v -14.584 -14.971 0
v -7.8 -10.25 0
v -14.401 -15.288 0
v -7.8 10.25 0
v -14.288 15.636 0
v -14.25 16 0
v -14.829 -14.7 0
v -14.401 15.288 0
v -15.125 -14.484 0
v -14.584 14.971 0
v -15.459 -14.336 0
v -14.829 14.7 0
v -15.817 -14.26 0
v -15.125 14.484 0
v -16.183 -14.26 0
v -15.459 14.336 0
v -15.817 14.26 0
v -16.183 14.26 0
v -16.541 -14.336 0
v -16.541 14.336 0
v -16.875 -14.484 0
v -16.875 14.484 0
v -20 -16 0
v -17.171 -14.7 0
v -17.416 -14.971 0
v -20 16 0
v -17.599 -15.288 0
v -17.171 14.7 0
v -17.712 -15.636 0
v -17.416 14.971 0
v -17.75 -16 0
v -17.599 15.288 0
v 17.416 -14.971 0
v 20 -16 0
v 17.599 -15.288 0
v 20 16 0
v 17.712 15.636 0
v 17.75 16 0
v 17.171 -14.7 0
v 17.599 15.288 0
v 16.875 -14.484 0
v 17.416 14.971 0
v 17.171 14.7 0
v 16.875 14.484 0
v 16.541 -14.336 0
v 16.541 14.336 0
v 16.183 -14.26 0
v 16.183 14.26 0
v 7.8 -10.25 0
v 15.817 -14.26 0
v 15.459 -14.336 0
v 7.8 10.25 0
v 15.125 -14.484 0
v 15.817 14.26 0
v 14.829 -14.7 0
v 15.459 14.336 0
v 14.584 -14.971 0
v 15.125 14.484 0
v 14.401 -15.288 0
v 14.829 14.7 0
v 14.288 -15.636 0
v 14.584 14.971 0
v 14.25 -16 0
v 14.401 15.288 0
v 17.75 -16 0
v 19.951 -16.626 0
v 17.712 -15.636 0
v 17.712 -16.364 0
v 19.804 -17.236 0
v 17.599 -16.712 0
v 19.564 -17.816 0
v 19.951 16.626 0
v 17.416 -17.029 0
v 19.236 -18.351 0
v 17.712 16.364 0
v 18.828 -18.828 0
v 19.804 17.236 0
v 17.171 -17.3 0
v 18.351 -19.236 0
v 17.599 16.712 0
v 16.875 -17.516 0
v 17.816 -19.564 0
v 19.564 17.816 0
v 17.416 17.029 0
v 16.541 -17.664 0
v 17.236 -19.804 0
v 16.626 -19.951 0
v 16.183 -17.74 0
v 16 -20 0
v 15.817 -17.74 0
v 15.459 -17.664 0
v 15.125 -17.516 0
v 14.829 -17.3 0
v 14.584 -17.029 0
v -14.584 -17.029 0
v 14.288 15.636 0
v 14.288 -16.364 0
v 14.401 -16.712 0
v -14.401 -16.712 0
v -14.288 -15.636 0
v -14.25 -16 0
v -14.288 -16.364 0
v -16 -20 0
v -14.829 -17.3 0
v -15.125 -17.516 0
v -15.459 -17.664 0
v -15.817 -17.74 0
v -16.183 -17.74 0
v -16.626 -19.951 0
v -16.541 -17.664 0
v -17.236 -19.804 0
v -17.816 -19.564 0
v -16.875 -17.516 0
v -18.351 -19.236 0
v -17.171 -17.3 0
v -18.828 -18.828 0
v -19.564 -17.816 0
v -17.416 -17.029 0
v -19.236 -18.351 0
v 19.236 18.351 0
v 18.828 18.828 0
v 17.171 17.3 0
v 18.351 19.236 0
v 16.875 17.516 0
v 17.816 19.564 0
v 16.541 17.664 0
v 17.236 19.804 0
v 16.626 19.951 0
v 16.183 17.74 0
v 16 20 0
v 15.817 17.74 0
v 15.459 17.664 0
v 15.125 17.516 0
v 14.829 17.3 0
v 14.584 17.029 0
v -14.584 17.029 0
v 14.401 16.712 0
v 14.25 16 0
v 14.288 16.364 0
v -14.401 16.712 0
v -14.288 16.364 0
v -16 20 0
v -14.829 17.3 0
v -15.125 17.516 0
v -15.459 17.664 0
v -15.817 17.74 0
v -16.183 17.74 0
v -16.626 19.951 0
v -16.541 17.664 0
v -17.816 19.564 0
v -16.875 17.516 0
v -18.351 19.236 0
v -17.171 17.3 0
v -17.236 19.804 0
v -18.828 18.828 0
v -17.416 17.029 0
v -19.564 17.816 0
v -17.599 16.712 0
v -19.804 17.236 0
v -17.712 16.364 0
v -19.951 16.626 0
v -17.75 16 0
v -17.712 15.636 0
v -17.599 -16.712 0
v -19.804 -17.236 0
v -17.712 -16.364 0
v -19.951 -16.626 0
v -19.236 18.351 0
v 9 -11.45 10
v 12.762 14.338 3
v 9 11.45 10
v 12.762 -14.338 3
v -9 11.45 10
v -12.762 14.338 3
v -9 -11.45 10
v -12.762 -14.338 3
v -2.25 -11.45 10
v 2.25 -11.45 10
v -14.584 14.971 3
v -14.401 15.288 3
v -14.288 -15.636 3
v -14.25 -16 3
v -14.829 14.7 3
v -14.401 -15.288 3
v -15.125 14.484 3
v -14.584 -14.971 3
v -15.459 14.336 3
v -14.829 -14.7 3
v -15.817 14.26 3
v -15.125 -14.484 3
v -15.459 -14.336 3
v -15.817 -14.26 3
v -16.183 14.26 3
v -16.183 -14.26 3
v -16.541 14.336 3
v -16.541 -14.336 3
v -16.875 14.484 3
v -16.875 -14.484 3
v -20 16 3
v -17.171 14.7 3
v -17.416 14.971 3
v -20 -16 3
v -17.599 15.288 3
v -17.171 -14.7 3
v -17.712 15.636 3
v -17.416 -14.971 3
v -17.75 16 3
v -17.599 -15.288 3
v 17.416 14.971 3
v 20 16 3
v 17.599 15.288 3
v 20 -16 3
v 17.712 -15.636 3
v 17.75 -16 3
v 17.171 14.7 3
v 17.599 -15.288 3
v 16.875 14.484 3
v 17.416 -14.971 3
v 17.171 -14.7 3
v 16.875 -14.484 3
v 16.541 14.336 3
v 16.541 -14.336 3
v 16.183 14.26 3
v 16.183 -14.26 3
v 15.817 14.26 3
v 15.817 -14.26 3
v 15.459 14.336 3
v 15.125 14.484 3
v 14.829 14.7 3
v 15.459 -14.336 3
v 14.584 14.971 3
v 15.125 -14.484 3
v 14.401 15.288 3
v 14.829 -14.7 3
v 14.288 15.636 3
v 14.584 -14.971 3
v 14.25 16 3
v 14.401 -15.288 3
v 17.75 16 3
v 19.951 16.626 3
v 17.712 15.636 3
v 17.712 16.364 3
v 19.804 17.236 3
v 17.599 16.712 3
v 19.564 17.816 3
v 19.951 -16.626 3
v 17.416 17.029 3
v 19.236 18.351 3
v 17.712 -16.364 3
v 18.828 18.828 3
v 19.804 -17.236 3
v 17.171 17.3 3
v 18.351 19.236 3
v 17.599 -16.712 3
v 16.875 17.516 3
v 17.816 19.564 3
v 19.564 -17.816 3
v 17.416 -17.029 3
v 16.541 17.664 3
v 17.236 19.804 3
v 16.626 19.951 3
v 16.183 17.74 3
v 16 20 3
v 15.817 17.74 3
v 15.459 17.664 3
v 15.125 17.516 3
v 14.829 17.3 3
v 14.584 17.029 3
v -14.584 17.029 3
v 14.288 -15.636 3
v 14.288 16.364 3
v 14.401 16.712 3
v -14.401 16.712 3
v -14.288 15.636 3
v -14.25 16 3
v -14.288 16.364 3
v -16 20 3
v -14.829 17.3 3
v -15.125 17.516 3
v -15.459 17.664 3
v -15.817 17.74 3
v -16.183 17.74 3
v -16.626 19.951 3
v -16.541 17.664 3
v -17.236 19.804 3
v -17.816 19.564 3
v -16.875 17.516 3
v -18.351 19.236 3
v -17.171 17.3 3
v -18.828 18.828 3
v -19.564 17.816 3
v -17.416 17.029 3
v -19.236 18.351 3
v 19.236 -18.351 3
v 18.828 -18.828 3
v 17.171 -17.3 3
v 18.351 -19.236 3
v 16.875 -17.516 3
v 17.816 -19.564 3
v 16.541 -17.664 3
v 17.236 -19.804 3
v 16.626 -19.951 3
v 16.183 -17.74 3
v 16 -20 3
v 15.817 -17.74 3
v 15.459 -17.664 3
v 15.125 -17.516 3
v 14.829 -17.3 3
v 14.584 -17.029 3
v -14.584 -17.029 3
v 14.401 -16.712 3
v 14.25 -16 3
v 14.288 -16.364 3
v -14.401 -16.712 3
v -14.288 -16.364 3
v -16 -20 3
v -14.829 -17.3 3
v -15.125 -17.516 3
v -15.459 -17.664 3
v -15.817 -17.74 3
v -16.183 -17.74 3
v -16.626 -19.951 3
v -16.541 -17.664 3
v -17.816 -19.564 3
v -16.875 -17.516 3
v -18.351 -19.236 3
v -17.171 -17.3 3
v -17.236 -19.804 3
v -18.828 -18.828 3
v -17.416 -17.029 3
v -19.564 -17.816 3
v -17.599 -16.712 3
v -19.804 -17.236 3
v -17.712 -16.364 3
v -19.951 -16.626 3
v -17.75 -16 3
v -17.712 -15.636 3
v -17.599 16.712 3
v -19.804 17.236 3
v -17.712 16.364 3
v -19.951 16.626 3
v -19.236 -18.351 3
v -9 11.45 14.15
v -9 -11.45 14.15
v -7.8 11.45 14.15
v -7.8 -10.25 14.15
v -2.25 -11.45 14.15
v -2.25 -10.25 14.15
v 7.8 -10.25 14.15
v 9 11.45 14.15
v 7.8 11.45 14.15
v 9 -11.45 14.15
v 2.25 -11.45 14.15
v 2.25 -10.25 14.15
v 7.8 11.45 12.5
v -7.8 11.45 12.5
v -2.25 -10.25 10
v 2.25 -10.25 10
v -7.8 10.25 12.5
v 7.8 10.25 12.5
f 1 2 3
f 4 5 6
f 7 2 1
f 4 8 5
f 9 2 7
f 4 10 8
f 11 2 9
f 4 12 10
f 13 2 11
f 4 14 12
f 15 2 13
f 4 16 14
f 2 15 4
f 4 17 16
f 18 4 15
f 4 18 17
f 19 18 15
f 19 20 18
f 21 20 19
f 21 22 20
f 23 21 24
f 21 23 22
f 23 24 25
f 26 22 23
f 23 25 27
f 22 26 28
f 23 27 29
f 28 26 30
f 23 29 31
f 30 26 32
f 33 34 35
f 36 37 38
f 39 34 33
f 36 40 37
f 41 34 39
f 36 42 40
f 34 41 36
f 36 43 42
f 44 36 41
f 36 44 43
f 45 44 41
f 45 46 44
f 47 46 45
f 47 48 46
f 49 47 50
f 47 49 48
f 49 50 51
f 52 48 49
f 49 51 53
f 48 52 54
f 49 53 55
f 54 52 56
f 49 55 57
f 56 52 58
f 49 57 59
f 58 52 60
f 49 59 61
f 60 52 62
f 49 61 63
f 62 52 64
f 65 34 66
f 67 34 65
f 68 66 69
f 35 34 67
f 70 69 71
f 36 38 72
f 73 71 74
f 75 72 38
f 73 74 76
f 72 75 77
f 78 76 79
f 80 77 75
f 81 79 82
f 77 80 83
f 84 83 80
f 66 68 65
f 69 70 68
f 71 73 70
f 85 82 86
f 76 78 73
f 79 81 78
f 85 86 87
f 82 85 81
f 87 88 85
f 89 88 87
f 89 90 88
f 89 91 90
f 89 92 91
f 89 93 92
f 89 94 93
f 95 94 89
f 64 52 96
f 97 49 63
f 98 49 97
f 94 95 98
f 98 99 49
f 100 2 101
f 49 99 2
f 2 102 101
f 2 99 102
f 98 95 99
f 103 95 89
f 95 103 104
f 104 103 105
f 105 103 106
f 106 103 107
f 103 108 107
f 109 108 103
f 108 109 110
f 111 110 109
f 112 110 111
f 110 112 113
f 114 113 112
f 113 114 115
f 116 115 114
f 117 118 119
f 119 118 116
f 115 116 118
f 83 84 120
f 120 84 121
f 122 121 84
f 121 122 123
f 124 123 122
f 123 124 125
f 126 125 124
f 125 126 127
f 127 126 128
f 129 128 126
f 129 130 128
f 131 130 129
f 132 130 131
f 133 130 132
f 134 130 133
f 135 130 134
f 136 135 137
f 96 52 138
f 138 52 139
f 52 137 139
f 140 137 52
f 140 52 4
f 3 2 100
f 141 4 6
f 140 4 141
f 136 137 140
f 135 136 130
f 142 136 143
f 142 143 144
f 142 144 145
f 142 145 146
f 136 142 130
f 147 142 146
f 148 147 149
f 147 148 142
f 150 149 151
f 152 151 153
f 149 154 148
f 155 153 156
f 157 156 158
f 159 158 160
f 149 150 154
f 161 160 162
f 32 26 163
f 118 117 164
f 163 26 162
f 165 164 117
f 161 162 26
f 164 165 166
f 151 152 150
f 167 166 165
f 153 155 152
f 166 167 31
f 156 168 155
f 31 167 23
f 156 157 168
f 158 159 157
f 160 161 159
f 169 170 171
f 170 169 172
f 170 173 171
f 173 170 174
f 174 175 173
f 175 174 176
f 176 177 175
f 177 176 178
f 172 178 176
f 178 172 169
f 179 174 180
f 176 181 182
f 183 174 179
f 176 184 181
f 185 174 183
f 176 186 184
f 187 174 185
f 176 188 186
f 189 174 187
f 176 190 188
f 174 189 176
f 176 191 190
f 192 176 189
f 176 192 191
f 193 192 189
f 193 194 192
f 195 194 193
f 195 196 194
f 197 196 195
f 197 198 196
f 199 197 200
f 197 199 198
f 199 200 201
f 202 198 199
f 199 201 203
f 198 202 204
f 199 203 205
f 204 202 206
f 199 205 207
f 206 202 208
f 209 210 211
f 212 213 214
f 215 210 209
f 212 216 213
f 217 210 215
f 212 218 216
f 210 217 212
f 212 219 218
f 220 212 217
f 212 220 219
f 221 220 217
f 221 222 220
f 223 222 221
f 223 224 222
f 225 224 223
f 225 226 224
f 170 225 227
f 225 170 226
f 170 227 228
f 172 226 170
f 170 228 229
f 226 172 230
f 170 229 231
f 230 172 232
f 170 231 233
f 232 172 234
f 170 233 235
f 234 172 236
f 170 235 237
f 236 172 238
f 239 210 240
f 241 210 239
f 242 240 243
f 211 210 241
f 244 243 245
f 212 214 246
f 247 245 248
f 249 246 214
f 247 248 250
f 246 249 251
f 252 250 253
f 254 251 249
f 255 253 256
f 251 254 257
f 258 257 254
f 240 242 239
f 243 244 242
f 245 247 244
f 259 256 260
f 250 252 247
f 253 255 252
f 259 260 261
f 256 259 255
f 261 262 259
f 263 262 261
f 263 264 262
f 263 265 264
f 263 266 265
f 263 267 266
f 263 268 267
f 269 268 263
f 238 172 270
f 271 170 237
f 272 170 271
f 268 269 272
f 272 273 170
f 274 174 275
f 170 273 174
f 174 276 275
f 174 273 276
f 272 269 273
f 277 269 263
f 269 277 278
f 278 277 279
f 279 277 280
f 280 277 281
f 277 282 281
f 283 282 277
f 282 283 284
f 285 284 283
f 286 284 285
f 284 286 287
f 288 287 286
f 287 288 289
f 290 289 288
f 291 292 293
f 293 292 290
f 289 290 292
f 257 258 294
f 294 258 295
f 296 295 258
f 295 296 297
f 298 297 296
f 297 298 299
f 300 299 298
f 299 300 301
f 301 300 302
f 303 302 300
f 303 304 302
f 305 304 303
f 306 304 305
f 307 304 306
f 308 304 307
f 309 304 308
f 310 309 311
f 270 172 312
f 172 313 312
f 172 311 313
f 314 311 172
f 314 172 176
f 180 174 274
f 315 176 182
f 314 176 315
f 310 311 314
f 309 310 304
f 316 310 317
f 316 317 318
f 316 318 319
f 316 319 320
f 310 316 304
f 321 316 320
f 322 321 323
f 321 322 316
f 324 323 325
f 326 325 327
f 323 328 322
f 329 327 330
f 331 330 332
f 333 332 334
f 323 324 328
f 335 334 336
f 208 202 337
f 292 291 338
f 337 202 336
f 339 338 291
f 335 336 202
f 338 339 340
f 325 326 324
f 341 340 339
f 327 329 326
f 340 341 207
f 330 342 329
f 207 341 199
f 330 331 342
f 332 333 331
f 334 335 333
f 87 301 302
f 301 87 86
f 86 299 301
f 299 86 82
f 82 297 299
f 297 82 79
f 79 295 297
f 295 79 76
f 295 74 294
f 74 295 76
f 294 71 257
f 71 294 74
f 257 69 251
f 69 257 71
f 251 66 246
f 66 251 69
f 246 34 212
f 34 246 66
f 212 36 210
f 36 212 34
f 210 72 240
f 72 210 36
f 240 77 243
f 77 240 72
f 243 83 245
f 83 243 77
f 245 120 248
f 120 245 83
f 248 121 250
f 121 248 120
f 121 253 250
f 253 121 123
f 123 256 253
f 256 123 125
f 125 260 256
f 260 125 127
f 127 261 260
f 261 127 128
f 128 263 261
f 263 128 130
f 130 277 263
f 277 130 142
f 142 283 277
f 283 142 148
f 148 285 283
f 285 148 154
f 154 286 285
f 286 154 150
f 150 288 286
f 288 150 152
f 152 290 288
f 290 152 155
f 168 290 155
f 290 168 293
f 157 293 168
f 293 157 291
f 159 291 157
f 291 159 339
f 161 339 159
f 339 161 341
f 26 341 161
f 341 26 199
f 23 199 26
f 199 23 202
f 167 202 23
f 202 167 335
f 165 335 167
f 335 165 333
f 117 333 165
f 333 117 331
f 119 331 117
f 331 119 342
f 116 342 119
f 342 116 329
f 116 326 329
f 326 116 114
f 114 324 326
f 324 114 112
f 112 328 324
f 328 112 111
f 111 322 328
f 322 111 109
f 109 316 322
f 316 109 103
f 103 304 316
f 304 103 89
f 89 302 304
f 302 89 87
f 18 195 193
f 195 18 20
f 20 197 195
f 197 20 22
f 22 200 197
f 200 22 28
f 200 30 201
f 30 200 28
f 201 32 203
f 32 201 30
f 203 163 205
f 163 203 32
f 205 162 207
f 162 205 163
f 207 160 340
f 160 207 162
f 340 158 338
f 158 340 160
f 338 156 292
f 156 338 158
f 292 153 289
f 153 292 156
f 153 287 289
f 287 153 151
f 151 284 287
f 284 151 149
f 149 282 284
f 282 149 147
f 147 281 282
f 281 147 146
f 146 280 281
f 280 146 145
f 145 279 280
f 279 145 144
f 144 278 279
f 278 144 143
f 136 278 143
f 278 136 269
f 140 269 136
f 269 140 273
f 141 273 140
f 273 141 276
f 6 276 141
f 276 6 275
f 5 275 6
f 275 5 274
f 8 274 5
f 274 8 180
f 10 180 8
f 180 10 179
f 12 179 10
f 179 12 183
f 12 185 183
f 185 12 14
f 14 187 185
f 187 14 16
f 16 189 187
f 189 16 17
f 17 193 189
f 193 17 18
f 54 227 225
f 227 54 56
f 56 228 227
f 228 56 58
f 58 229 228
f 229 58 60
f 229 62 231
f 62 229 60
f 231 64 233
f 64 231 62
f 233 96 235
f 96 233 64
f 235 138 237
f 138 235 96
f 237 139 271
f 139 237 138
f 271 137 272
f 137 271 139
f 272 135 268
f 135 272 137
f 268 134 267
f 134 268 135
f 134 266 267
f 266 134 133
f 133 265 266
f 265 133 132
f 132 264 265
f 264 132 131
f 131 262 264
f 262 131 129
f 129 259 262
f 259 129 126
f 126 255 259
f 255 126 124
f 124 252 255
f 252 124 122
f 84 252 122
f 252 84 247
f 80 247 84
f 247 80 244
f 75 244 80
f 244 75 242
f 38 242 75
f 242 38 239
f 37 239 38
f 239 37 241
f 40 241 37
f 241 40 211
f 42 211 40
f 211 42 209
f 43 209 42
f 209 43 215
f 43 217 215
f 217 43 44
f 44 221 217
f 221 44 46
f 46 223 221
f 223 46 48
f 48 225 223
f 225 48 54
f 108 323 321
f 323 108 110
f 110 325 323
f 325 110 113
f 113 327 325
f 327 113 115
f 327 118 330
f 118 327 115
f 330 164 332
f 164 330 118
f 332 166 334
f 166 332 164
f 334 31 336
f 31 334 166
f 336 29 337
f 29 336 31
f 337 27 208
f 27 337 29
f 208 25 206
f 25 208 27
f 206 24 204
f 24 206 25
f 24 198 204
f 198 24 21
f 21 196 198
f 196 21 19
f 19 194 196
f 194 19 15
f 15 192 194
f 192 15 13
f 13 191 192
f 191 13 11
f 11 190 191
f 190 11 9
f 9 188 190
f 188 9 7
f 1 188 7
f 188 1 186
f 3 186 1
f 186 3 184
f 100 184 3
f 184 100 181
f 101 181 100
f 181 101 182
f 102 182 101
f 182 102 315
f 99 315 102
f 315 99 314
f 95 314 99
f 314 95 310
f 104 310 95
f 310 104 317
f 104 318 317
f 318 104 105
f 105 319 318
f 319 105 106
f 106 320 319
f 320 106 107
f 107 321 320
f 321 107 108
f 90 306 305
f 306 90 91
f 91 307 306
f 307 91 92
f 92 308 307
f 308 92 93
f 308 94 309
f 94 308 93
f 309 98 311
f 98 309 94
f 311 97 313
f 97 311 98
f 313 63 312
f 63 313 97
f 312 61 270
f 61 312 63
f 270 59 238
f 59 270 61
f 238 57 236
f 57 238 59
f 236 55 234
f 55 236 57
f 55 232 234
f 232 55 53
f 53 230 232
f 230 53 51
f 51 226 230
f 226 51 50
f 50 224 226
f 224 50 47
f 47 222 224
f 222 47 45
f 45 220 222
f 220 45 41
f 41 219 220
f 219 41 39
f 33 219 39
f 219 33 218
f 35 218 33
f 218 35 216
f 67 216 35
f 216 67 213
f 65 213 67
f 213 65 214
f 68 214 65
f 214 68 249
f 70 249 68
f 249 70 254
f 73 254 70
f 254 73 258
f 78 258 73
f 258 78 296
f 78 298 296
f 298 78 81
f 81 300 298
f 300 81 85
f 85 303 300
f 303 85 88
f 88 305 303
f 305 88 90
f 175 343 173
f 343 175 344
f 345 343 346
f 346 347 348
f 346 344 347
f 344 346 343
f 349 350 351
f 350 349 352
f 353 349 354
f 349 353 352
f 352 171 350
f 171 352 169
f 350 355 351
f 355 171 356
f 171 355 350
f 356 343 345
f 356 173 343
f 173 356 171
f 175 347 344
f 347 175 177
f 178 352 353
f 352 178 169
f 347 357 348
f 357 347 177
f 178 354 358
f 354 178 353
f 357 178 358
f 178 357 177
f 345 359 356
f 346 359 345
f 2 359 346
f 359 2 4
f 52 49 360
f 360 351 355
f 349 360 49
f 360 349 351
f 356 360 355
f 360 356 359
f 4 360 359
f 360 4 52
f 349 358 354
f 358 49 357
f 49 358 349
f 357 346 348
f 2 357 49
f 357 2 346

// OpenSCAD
/*intersection()
{   
    import("../stl/Mounting_kit_-_Blower_mount.stl");
    translate([0,0,13.15])cube([60,60,10],center=true);
}*/
//scale([1.03,1.03,1])import("../stl/Mounting_kit_-_Blower_mount.stl");
plate_t=3;
module fan_bracket()
{
    fansize=40;
    holespace=32;
    round_r=4;
    m3_slot=3.5;
    linear_extrude(height=plate_t)difference()
    {
        minkowski()
        {
            square([fansize-round_r*2,fansize-round_r*2],center=true);
            circle(r=round_r,$fn=40);
        }
        for (aa=[-.5:1:.5])
        {
            for (bb=[-.5:1:.5])
            {
                translate([aa*holespace,bb*holespace])circle(r=m3_slot/2,$fn=30);
            }
        }
        //circle(r=36/2,$fn=60);
    }
}
b_l=20.5;
b_w=15.6;
module blower_neck()
{
    translate([0,0,6])cube([b_w,b_l,20],center=true);
}
module slope()
{
    hull()
    {
        translate([0,0,9])cube([b_w+2.4,b_l+2.4,2],center=true);
        translate([0,0,1])cube([b_w+11,b_l+9,2],center=true);
    }
}
module retainer()
{
    translate([0,0,10-0.1+1.5])cube([b_w+2.4,b_l+2.4,2.5+3],center=true);
}
module latch_cut()
{
    translate([0,-b_l/2,5+10])cube([4.5,10,10],center=true);
    translate([0,b_l/2,5+10+2.5])cube([b_w,10,10],center=true);
}
difference()
{
    union()
    {
        slope();
        fan_bracket();
        retainer();
    }
    blower_neck();
    latch_cut();
}
